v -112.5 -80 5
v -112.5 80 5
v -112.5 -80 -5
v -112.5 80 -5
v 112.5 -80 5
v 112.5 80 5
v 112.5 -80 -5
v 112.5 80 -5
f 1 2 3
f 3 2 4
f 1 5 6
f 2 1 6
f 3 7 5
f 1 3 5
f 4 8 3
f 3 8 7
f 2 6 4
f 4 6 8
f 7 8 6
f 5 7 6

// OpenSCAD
translate ([ 0,0,0]) cube( [ 225, 160, 10 ], center=true );
